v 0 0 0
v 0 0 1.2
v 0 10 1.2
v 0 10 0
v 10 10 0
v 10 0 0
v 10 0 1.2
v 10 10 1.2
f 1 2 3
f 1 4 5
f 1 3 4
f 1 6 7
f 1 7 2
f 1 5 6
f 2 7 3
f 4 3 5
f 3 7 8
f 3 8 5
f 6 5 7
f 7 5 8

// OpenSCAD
/* Warning, this is a very basic generator with a lot of approximation 
input data : [TFBGA, 4LB, 10x10x1.2mm, 81, , A, C04-21526A]
generated by com.zoubworld.electronics.cad.model3d.Basic
Date : Sun Feb 15 10:50:49 CET 2026
*/

//body
color("black")
translate([0,0,0])
cube([10.0,10.0,1.2], center=false);
